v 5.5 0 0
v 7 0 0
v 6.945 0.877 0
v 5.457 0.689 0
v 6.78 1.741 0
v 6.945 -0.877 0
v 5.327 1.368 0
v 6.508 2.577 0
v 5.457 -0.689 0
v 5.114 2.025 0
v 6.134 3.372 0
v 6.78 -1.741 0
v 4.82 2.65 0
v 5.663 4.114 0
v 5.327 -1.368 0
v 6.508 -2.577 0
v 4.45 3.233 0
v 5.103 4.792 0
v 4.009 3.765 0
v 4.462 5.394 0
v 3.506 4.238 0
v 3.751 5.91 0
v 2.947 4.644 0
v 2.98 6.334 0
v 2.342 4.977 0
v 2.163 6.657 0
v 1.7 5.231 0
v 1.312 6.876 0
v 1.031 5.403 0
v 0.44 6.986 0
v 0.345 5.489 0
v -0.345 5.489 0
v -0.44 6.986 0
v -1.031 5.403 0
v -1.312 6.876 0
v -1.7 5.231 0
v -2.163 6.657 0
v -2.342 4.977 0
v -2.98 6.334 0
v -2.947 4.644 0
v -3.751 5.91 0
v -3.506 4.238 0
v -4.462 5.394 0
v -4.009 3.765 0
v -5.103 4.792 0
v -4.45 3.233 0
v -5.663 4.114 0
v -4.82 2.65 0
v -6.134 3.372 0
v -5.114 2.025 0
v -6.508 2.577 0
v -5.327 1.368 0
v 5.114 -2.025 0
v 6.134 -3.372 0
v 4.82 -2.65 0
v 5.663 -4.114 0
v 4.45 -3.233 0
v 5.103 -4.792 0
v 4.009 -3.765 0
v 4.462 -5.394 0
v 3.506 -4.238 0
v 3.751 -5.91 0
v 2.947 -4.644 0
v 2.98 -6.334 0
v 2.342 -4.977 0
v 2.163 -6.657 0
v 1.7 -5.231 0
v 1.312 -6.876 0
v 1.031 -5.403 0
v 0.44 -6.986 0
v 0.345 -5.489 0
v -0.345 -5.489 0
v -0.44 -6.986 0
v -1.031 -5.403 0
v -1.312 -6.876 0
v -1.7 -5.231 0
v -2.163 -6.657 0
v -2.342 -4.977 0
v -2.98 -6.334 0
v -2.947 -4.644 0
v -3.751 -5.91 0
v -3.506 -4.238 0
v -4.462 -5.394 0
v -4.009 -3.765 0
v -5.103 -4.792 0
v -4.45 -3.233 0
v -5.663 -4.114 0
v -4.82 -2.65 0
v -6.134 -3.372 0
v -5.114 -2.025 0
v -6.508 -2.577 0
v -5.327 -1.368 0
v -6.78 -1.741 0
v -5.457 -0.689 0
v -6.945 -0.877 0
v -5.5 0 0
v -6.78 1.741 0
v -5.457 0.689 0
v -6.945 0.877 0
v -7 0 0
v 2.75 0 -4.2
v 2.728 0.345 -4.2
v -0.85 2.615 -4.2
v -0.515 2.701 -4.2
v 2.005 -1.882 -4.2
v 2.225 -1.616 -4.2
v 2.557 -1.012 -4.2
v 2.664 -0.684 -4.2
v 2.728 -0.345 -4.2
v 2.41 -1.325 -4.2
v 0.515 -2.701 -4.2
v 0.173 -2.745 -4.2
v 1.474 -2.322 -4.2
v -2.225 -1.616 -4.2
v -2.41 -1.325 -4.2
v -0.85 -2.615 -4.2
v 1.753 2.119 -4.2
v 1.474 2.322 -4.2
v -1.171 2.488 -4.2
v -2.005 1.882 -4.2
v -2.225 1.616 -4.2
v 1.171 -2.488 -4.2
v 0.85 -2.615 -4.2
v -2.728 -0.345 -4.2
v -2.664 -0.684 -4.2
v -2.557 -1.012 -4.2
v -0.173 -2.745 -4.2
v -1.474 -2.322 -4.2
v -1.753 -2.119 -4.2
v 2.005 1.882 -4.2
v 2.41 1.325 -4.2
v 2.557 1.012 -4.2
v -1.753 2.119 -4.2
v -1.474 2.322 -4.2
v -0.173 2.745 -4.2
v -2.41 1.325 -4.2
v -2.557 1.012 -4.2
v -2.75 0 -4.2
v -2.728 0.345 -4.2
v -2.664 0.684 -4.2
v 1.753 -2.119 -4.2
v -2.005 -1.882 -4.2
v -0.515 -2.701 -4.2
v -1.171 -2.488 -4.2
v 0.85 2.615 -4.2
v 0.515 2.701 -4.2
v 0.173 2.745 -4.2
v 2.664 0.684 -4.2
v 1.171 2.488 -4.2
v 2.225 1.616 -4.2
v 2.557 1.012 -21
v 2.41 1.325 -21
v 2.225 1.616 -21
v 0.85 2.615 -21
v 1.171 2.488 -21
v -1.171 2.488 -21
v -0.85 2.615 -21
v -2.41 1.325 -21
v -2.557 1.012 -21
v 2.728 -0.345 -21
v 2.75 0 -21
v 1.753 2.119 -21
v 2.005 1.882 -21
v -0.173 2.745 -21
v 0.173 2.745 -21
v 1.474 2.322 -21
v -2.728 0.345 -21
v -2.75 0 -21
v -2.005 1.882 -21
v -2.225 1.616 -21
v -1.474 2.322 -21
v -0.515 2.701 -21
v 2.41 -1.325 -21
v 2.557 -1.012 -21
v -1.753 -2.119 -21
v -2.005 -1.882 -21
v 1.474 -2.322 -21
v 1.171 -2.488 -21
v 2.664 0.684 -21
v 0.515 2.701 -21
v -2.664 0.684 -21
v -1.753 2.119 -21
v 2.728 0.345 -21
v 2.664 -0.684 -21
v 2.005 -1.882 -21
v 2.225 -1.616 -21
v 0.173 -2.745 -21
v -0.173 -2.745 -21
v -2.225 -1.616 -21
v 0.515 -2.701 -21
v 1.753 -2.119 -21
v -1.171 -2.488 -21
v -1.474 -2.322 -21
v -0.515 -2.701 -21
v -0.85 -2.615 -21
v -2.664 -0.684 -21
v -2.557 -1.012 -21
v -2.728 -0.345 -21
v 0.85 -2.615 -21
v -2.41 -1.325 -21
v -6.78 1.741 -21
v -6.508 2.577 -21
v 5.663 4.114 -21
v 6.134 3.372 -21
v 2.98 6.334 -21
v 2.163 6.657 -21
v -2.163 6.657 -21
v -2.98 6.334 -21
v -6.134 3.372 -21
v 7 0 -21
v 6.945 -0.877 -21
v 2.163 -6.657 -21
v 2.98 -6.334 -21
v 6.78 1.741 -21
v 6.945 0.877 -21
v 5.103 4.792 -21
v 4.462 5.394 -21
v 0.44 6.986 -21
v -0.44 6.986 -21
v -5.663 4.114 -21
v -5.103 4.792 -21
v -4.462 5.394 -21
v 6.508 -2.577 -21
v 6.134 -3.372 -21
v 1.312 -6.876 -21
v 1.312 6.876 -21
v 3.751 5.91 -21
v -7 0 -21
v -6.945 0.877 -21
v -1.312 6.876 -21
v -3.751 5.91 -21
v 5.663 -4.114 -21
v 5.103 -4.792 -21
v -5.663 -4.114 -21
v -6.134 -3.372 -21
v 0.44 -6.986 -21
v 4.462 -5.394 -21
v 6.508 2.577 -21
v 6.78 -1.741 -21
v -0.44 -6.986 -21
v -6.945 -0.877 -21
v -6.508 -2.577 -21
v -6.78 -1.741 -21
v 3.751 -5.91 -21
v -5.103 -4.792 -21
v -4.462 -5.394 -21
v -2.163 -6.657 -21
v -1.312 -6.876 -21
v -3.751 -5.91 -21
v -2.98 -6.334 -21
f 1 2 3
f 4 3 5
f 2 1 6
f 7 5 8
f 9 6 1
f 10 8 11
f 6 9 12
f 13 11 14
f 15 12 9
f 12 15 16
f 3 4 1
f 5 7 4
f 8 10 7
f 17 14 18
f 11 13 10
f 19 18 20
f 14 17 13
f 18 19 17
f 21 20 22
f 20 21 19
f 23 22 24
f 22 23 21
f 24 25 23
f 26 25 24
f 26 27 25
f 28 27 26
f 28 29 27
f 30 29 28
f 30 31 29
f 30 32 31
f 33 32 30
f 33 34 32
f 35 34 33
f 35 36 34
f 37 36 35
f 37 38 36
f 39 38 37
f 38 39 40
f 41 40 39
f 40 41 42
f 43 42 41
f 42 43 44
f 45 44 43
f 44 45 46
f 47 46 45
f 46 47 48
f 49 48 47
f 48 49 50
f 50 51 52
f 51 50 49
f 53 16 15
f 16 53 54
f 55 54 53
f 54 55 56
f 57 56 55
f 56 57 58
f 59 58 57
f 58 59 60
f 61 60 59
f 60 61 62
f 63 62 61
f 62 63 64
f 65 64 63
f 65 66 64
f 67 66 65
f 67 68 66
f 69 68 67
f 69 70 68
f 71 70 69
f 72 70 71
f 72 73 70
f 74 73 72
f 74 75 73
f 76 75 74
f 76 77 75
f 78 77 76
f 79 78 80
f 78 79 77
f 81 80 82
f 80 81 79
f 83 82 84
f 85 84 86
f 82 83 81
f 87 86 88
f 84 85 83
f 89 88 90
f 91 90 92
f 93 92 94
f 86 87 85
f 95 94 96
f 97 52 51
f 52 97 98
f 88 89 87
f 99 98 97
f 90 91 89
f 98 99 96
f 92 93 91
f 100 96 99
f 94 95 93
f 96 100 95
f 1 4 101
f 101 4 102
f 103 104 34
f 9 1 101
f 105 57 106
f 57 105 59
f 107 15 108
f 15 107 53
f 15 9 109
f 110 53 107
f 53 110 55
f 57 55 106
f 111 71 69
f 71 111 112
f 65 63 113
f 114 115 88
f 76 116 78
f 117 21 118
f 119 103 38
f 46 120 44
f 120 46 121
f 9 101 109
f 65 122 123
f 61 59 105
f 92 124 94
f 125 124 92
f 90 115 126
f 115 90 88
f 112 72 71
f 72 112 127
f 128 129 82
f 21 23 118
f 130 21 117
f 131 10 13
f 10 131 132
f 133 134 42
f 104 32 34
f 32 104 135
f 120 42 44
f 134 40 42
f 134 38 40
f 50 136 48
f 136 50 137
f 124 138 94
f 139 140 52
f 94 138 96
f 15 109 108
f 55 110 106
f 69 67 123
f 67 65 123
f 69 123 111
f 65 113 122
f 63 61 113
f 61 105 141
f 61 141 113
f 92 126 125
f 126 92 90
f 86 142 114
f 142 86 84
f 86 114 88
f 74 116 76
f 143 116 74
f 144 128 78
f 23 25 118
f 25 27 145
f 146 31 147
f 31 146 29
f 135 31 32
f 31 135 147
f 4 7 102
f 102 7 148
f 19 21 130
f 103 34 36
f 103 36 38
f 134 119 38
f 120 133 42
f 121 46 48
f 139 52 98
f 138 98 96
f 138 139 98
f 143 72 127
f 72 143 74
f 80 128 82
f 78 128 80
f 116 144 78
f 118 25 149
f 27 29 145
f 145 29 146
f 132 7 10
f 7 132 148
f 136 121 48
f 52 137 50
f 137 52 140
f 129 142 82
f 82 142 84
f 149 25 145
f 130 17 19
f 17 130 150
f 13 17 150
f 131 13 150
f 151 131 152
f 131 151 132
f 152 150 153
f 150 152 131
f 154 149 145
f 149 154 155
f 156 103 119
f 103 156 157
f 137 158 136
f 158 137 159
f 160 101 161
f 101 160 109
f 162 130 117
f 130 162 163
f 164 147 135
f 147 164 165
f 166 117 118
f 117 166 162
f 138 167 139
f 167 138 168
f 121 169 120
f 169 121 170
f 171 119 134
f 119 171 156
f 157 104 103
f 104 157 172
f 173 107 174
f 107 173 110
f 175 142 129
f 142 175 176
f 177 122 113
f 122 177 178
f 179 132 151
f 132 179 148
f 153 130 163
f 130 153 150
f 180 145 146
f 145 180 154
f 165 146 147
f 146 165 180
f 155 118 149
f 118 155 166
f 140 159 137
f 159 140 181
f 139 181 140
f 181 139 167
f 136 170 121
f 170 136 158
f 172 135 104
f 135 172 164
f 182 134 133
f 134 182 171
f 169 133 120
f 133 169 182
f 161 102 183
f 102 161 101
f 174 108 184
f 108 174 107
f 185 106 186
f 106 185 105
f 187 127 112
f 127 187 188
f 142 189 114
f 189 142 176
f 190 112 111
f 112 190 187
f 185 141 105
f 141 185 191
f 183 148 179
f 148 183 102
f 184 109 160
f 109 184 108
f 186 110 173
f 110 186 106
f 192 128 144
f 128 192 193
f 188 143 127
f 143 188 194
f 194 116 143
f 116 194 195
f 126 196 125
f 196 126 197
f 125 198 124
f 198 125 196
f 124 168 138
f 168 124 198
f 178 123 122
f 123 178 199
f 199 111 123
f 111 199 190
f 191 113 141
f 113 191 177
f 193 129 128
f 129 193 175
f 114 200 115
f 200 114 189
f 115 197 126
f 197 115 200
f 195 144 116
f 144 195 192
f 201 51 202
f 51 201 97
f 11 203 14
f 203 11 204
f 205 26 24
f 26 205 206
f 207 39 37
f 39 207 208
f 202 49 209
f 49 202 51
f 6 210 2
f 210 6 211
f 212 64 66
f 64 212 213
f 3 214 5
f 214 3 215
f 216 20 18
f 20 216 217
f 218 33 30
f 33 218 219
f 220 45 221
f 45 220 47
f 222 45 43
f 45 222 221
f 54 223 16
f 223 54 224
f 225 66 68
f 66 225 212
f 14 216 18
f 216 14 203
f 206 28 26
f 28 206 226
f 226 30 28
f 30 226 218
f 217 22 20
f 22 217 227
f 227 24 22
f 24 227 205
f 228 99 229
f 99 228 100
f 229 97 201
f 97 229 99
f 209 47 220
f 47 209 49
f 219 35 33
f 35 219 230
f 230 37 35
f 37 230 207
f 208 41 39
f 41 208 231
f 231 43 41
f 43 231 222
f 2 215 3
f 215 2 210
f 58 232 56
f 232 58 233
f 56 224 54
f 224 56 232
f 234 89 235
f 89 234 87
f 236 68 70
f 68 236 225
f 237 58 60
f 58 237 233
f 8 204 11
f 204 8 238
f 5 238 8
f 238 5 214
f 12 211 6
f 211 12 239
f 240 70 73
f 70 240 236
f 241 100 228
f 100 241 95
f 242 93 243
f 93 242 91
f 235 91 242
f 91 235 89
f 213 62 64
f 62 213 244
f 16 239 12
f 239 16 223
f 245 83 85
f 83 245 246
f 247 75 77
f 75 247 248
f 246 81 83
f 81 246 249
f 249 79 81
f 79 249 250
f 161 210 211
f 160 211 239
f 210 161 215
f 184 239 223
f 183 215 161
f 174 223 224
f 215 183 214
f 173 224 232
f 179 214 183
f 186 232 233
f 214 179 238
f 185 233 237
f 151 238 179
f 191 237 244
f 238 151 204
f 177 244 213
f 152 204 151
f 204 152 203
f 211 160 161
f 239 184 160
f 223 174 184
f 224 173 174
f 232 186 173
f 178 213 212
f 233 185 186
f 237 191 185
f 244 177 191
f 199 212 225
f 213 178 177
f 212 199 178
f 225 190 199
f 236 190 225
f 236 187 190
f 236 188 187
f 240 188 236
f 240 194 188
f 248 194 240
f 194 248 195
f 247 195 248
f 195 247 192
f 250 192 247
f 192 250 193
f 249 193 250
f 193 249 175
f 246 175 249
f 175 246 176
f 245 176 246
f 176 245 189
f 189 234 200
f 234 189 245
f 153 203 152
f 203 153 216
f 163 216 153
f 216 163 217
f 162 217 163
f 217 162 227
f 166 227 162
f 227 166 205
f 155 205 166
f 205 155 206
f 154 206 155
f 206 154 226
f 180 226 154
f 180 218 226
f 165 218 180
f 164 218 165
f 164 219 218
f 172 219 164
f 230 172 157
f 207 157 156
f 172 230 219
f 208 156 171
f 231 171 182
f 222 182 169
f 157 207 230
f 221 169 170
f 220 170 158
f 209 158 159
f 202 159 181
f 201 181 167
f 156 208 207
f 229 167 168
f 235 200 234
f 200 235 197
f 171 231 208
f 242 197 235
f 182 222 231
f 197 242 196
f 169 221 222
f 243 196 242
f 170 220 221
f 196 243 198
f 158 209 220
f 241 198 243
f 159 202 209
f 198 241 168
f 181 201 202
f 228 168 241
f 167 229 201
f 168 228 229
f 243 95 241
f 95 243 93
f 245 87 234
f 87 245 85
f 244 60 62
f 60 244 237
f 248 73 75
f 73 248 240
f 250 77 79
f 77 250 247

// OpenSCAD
$fn = 50;

difference() {
	union() {
		translate(v = [0, 0, -21.0]) {
			cylinder(h = 21, r = 7.0);
		}
	}
	union() {
		translate(v = [0, 0, 0]) {
			rotate(a = [0, 0, 0]) {
				difference() {
					union() {
						translate(v = [0, 0, -24.0]) {
							cylinder(h = 24, r = 2.25);
						}
						translate(v = [0, 0, -4.2]) {
							cylinder(h = 4.2, r1 = 2.75, r2 = 5.5);
						}
						translate(v = [0, 0, -24.0]) {
							cylinder(h = 24, r = 2.75);
						}
						translate(v = [0, 0, -24.0]) {
							cylinder(h = 24, r = 2.25);
						}
					}
					union();
				}
			}
		}
	}
}
